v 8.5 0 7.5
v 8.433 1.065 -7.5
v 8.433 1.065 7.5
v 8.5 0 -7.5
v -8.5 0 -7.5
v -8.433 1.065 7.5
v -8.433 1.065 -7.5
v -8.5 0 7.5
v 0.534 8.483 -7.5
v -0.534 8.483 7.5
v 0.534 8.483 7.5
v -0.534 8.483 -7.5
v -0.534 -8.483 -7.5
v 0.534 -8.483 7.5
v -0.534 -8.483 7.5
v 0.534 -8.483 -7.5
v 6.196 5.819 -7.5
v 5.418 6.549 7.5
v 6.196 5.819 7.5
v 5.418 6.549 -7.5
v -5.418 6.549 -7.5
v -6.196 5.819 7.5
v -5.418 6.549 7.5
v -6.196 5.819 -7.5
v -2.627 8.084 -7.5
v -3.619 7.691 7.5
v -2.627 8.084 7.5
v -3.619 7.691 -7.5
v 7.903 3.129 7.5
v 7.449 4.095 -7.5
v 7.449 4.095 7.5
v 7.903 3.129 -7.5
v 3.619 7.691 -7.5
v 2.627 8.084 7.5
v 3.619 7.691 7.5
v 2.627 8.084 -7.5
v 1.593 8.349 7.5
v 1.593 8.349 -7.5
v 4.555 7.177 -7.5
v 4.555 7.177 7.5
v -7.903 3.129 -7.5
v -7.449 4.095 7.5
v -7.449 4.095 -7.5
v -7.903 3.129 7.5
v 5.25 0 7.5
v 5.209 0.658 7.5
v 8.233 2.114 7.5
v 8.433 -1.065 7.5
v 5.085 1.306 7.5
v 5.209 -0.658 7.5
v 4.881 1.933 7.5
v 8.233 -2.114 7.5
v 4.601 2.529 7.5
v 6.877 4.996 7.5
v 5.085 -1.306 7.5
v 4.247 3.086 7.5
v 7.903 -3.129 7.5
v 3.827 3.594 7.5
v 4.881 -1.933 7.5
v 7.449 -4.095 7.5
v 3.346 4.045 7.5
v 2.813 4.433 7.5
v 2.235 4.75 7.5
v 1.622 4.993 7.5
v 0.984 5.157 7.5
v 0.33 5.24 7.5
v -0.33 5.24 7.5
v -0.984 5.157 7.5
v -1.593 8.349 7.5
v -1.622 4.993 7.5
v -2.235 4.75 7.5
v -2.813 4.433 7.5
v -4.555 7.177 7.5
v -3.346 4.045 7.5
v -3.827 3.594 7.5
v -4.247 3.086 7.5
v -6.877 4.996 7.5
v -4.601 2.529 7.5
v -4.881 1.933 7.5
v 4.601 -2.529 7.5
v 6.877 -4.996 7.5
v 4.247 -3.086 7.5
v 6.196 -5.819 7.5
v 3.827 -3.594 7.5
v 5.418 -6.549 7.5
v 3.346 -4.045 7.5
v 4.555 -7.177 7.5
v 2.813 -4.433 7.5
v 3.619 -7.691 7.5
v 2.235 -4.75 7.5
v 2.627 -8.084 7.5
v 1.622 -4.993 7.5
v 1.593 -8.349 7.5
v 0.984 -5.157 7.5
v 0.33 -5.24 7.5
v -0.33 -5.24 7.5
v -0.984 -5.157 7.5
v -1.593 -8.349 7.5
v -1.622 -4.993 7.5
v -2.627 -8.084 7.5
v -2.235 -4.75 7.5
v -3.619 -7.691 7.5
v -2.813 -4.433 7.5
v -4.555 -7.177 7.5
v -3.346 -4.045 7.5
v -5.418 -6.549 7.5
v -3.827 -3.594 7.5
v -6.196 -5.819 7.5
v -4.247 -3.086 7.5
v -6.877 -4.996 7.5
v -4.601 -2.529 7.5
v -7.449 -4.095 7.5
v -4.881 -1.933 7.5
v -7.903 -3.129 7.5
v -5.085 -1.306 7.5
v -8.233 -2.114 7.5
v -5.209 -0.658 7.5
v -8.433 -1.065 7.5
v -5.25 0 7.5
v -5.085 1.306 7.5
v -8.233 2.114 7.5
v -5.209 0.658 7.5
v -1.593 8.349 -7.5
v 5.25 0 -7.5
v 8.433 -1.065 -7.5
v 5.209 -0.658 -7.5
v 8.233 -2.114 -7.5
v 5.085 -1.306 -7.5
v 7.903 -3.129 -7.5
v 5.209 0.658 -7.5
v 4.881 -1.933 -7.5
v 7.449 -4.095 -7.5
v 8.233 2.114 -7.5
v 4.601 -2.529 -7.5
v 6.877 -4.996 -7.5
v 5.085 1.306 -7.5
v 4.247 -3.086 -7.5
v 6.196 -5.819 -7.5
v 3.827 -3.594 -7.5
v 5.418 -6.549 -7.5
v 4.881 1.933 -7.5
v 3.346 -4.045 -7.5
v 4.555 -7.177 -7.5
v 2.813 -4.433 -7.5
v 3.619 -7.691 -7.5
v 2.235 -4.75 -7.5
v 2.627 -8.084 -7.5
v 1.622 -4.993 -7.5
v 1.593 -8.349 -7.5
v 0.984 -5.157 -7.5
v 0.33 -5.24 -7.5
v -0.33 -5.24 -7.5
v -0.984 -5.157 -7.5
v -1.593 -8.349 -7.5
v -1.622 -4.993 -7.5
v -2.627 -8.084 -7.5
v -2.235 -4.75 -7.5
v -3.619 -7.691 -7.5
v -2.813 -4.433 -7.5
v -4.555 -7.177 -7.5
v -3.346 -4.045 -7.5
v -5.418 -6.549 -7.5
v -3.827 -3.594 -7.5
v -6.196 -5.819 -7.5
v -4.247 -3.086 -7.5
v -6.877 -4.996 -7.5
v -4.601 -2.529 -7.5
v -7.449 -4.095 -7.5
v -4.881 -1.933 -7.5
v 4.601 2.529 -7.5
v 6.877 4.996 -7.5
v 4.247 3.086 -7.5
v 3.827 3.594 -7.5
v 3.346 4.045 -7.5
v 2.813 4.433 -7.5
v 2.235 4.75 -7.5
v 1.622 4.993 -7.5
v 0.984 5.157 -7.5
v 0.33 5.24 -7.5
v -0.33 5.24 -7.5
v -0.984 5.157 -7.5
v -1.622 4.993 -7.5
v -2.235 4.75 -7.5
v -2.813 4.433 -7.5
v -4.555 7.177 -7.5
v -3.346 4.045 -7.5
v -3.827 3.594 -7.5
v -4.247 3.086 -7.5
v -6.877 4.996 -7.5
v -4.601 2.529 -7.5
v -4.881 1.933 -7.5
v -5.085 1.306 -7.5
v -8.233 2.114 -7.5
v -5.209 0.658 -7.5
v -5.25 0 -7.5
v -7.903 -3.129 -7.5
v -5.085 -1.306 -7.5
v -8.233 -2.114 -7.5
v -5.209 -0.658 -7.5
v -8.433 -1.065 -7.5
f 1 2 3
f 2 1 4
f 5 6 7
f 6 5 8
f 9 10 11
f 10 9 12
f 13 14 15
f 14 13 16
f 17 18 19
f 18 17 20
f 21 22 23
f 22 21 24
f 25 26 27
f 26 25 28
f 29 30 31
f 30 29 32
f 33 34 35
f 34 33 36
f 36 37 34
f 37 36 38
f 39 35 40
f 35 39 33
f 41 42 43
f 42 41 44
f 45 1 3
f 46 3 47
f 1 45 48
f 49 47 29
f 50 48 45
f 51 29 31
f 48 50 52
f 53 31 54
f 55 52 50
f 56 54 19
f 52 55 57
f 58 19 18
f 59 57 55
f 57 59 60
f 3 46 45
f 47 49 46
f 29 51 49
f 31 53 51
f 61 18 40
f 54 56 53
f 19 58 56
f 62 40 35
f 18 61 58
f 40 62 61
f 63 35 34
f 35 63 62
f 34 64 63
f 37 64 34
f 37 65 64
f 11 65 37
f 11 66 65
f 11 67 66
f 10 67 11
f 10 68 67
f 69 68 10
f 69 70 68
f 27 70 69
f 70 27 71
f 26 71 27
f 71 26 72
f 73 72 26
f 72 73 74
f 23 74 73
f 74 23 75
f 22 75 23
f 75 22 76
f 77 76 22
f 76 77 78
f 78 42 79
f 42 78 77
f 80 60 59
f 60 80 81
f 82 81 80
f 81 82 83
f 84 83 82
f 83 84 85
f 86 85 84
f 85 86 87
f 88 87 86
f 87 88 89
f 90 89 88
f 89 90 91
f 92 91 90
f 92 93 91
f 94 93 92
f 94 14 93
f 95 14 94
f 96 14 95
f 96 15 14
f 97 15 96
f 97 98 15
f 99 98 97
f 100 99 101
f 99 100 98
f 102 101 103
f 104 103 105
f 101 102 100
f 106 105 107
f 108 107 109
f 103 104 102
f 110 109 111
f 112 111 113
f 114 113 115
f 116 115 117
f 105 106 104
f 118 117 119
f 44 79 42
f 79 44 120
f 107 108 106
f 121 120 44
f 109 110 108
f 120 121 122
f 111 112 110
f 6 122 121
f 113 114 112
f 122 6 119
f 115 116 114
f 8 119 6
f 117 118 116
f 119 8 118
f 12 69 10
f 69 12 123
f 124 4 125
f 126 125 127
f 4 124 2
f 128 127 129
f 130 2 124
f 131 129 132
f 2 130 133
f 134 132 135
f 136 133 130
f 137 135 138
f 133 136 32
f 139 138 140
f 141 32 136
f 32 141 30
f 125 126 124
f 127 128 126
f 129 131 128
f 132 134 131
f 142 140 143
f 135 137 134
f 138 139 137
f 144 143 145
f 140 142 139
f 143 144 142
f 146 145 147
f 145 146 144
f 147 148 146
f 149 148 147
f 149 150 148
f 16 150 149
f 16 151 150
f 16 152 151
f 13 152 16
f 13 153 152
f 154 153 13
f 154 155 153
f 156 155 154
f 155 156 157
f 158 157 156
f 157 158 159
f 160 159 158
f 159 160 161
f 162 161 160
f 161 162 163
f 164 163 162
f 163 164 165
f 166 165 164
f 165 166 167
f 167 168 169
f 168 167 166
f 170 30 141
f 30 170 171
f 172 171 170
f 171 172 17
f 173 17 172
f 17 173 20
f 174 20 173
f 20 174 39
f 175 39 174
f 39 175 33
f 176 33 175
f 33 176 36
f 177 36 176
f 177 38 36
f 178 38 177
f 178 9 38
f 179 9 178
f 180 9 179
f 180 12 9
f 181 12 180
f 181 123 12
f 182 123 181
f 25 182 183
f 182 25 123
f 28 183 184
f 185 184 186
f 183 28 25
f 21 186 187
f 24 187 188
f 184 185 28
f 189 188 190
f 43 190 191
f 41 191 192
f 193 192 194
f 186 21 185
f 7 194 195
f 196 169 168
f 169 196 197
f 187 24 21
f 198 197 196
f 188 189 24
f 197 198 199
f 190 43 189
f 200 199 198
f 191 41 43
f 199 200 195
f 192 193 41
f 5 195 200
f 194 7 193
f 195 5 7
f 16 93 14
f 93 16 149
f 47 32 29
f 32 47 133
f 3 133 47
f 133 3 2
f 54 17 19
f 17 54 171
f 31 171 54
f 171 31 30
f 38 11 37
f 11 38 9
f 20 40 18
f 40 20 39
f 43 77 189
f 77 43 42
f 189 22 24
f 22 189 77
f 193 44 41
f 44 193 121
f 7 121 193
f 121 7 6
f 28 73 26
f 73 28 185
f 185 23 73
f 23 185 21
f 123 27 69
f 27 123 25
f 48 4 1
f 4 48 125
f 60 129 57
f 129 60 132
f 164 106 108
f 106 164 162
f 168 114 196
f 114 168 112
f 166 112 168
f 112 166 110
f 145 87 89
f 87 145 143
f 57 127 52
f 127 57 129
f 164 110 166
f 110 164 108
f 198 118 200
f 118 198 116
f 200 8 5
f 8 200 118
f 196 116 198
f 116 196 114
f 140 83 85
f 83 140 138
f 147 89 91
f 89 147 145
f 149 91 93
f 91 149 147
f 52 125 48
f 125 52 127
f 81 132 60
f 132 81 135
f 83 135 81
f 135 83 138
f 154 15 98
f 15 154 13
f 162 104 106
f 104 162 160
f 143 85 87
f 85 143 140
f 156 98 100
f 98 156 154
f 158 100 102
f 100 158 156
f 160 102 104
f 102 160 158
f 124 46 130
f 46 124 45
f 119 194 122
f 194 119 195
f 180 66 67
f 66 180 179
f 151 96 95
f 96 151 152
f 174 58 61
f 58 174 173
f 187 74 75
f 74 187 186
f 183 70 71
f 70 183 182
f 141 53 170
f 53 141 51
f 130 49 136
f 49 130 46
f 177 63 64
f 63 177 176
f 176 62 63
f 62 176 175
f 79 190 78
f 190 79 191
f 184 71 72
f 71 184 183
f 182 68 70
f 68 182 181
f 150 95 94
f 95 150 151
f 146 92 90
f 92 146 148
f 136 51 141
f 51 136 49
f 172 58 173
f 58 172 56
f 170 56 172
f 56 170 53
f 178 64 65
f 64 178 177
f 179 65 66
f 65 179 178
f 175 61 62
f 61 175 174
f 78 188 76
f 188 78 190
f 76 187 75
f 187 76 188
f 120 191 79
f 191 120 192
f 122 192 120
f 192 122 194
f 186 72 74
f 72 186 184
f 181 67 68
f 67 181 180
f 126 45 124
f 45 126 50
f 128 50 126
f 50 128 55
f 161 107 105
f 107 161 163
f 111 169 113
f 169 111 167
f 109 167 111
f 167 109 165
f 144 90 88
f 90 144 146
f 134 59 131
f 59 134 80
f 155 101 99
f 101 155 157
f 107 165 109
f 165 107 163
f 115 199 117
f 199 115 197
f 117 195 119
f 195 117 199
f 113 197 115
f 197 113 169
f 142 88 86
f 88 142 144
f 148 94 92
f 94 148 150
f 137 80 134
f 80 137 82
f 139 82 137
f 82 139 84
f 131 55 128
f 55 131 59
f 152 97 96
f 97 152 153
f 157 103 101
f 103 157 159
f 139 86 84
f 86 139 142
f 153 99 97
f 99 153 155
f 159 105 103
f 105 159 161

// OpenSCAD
$fn = 50;


difference() {
	union() {
		translate(v = [0, 0, -7.5000000000]) {
			cylinder(h = 15, r = 8.5000000000);
		}
	}
	union() {
		translate(v = [0, 0, -100.0000000000]) {
			cylinder(h = 200, r = 5.2500000000);
		}
	}
}
